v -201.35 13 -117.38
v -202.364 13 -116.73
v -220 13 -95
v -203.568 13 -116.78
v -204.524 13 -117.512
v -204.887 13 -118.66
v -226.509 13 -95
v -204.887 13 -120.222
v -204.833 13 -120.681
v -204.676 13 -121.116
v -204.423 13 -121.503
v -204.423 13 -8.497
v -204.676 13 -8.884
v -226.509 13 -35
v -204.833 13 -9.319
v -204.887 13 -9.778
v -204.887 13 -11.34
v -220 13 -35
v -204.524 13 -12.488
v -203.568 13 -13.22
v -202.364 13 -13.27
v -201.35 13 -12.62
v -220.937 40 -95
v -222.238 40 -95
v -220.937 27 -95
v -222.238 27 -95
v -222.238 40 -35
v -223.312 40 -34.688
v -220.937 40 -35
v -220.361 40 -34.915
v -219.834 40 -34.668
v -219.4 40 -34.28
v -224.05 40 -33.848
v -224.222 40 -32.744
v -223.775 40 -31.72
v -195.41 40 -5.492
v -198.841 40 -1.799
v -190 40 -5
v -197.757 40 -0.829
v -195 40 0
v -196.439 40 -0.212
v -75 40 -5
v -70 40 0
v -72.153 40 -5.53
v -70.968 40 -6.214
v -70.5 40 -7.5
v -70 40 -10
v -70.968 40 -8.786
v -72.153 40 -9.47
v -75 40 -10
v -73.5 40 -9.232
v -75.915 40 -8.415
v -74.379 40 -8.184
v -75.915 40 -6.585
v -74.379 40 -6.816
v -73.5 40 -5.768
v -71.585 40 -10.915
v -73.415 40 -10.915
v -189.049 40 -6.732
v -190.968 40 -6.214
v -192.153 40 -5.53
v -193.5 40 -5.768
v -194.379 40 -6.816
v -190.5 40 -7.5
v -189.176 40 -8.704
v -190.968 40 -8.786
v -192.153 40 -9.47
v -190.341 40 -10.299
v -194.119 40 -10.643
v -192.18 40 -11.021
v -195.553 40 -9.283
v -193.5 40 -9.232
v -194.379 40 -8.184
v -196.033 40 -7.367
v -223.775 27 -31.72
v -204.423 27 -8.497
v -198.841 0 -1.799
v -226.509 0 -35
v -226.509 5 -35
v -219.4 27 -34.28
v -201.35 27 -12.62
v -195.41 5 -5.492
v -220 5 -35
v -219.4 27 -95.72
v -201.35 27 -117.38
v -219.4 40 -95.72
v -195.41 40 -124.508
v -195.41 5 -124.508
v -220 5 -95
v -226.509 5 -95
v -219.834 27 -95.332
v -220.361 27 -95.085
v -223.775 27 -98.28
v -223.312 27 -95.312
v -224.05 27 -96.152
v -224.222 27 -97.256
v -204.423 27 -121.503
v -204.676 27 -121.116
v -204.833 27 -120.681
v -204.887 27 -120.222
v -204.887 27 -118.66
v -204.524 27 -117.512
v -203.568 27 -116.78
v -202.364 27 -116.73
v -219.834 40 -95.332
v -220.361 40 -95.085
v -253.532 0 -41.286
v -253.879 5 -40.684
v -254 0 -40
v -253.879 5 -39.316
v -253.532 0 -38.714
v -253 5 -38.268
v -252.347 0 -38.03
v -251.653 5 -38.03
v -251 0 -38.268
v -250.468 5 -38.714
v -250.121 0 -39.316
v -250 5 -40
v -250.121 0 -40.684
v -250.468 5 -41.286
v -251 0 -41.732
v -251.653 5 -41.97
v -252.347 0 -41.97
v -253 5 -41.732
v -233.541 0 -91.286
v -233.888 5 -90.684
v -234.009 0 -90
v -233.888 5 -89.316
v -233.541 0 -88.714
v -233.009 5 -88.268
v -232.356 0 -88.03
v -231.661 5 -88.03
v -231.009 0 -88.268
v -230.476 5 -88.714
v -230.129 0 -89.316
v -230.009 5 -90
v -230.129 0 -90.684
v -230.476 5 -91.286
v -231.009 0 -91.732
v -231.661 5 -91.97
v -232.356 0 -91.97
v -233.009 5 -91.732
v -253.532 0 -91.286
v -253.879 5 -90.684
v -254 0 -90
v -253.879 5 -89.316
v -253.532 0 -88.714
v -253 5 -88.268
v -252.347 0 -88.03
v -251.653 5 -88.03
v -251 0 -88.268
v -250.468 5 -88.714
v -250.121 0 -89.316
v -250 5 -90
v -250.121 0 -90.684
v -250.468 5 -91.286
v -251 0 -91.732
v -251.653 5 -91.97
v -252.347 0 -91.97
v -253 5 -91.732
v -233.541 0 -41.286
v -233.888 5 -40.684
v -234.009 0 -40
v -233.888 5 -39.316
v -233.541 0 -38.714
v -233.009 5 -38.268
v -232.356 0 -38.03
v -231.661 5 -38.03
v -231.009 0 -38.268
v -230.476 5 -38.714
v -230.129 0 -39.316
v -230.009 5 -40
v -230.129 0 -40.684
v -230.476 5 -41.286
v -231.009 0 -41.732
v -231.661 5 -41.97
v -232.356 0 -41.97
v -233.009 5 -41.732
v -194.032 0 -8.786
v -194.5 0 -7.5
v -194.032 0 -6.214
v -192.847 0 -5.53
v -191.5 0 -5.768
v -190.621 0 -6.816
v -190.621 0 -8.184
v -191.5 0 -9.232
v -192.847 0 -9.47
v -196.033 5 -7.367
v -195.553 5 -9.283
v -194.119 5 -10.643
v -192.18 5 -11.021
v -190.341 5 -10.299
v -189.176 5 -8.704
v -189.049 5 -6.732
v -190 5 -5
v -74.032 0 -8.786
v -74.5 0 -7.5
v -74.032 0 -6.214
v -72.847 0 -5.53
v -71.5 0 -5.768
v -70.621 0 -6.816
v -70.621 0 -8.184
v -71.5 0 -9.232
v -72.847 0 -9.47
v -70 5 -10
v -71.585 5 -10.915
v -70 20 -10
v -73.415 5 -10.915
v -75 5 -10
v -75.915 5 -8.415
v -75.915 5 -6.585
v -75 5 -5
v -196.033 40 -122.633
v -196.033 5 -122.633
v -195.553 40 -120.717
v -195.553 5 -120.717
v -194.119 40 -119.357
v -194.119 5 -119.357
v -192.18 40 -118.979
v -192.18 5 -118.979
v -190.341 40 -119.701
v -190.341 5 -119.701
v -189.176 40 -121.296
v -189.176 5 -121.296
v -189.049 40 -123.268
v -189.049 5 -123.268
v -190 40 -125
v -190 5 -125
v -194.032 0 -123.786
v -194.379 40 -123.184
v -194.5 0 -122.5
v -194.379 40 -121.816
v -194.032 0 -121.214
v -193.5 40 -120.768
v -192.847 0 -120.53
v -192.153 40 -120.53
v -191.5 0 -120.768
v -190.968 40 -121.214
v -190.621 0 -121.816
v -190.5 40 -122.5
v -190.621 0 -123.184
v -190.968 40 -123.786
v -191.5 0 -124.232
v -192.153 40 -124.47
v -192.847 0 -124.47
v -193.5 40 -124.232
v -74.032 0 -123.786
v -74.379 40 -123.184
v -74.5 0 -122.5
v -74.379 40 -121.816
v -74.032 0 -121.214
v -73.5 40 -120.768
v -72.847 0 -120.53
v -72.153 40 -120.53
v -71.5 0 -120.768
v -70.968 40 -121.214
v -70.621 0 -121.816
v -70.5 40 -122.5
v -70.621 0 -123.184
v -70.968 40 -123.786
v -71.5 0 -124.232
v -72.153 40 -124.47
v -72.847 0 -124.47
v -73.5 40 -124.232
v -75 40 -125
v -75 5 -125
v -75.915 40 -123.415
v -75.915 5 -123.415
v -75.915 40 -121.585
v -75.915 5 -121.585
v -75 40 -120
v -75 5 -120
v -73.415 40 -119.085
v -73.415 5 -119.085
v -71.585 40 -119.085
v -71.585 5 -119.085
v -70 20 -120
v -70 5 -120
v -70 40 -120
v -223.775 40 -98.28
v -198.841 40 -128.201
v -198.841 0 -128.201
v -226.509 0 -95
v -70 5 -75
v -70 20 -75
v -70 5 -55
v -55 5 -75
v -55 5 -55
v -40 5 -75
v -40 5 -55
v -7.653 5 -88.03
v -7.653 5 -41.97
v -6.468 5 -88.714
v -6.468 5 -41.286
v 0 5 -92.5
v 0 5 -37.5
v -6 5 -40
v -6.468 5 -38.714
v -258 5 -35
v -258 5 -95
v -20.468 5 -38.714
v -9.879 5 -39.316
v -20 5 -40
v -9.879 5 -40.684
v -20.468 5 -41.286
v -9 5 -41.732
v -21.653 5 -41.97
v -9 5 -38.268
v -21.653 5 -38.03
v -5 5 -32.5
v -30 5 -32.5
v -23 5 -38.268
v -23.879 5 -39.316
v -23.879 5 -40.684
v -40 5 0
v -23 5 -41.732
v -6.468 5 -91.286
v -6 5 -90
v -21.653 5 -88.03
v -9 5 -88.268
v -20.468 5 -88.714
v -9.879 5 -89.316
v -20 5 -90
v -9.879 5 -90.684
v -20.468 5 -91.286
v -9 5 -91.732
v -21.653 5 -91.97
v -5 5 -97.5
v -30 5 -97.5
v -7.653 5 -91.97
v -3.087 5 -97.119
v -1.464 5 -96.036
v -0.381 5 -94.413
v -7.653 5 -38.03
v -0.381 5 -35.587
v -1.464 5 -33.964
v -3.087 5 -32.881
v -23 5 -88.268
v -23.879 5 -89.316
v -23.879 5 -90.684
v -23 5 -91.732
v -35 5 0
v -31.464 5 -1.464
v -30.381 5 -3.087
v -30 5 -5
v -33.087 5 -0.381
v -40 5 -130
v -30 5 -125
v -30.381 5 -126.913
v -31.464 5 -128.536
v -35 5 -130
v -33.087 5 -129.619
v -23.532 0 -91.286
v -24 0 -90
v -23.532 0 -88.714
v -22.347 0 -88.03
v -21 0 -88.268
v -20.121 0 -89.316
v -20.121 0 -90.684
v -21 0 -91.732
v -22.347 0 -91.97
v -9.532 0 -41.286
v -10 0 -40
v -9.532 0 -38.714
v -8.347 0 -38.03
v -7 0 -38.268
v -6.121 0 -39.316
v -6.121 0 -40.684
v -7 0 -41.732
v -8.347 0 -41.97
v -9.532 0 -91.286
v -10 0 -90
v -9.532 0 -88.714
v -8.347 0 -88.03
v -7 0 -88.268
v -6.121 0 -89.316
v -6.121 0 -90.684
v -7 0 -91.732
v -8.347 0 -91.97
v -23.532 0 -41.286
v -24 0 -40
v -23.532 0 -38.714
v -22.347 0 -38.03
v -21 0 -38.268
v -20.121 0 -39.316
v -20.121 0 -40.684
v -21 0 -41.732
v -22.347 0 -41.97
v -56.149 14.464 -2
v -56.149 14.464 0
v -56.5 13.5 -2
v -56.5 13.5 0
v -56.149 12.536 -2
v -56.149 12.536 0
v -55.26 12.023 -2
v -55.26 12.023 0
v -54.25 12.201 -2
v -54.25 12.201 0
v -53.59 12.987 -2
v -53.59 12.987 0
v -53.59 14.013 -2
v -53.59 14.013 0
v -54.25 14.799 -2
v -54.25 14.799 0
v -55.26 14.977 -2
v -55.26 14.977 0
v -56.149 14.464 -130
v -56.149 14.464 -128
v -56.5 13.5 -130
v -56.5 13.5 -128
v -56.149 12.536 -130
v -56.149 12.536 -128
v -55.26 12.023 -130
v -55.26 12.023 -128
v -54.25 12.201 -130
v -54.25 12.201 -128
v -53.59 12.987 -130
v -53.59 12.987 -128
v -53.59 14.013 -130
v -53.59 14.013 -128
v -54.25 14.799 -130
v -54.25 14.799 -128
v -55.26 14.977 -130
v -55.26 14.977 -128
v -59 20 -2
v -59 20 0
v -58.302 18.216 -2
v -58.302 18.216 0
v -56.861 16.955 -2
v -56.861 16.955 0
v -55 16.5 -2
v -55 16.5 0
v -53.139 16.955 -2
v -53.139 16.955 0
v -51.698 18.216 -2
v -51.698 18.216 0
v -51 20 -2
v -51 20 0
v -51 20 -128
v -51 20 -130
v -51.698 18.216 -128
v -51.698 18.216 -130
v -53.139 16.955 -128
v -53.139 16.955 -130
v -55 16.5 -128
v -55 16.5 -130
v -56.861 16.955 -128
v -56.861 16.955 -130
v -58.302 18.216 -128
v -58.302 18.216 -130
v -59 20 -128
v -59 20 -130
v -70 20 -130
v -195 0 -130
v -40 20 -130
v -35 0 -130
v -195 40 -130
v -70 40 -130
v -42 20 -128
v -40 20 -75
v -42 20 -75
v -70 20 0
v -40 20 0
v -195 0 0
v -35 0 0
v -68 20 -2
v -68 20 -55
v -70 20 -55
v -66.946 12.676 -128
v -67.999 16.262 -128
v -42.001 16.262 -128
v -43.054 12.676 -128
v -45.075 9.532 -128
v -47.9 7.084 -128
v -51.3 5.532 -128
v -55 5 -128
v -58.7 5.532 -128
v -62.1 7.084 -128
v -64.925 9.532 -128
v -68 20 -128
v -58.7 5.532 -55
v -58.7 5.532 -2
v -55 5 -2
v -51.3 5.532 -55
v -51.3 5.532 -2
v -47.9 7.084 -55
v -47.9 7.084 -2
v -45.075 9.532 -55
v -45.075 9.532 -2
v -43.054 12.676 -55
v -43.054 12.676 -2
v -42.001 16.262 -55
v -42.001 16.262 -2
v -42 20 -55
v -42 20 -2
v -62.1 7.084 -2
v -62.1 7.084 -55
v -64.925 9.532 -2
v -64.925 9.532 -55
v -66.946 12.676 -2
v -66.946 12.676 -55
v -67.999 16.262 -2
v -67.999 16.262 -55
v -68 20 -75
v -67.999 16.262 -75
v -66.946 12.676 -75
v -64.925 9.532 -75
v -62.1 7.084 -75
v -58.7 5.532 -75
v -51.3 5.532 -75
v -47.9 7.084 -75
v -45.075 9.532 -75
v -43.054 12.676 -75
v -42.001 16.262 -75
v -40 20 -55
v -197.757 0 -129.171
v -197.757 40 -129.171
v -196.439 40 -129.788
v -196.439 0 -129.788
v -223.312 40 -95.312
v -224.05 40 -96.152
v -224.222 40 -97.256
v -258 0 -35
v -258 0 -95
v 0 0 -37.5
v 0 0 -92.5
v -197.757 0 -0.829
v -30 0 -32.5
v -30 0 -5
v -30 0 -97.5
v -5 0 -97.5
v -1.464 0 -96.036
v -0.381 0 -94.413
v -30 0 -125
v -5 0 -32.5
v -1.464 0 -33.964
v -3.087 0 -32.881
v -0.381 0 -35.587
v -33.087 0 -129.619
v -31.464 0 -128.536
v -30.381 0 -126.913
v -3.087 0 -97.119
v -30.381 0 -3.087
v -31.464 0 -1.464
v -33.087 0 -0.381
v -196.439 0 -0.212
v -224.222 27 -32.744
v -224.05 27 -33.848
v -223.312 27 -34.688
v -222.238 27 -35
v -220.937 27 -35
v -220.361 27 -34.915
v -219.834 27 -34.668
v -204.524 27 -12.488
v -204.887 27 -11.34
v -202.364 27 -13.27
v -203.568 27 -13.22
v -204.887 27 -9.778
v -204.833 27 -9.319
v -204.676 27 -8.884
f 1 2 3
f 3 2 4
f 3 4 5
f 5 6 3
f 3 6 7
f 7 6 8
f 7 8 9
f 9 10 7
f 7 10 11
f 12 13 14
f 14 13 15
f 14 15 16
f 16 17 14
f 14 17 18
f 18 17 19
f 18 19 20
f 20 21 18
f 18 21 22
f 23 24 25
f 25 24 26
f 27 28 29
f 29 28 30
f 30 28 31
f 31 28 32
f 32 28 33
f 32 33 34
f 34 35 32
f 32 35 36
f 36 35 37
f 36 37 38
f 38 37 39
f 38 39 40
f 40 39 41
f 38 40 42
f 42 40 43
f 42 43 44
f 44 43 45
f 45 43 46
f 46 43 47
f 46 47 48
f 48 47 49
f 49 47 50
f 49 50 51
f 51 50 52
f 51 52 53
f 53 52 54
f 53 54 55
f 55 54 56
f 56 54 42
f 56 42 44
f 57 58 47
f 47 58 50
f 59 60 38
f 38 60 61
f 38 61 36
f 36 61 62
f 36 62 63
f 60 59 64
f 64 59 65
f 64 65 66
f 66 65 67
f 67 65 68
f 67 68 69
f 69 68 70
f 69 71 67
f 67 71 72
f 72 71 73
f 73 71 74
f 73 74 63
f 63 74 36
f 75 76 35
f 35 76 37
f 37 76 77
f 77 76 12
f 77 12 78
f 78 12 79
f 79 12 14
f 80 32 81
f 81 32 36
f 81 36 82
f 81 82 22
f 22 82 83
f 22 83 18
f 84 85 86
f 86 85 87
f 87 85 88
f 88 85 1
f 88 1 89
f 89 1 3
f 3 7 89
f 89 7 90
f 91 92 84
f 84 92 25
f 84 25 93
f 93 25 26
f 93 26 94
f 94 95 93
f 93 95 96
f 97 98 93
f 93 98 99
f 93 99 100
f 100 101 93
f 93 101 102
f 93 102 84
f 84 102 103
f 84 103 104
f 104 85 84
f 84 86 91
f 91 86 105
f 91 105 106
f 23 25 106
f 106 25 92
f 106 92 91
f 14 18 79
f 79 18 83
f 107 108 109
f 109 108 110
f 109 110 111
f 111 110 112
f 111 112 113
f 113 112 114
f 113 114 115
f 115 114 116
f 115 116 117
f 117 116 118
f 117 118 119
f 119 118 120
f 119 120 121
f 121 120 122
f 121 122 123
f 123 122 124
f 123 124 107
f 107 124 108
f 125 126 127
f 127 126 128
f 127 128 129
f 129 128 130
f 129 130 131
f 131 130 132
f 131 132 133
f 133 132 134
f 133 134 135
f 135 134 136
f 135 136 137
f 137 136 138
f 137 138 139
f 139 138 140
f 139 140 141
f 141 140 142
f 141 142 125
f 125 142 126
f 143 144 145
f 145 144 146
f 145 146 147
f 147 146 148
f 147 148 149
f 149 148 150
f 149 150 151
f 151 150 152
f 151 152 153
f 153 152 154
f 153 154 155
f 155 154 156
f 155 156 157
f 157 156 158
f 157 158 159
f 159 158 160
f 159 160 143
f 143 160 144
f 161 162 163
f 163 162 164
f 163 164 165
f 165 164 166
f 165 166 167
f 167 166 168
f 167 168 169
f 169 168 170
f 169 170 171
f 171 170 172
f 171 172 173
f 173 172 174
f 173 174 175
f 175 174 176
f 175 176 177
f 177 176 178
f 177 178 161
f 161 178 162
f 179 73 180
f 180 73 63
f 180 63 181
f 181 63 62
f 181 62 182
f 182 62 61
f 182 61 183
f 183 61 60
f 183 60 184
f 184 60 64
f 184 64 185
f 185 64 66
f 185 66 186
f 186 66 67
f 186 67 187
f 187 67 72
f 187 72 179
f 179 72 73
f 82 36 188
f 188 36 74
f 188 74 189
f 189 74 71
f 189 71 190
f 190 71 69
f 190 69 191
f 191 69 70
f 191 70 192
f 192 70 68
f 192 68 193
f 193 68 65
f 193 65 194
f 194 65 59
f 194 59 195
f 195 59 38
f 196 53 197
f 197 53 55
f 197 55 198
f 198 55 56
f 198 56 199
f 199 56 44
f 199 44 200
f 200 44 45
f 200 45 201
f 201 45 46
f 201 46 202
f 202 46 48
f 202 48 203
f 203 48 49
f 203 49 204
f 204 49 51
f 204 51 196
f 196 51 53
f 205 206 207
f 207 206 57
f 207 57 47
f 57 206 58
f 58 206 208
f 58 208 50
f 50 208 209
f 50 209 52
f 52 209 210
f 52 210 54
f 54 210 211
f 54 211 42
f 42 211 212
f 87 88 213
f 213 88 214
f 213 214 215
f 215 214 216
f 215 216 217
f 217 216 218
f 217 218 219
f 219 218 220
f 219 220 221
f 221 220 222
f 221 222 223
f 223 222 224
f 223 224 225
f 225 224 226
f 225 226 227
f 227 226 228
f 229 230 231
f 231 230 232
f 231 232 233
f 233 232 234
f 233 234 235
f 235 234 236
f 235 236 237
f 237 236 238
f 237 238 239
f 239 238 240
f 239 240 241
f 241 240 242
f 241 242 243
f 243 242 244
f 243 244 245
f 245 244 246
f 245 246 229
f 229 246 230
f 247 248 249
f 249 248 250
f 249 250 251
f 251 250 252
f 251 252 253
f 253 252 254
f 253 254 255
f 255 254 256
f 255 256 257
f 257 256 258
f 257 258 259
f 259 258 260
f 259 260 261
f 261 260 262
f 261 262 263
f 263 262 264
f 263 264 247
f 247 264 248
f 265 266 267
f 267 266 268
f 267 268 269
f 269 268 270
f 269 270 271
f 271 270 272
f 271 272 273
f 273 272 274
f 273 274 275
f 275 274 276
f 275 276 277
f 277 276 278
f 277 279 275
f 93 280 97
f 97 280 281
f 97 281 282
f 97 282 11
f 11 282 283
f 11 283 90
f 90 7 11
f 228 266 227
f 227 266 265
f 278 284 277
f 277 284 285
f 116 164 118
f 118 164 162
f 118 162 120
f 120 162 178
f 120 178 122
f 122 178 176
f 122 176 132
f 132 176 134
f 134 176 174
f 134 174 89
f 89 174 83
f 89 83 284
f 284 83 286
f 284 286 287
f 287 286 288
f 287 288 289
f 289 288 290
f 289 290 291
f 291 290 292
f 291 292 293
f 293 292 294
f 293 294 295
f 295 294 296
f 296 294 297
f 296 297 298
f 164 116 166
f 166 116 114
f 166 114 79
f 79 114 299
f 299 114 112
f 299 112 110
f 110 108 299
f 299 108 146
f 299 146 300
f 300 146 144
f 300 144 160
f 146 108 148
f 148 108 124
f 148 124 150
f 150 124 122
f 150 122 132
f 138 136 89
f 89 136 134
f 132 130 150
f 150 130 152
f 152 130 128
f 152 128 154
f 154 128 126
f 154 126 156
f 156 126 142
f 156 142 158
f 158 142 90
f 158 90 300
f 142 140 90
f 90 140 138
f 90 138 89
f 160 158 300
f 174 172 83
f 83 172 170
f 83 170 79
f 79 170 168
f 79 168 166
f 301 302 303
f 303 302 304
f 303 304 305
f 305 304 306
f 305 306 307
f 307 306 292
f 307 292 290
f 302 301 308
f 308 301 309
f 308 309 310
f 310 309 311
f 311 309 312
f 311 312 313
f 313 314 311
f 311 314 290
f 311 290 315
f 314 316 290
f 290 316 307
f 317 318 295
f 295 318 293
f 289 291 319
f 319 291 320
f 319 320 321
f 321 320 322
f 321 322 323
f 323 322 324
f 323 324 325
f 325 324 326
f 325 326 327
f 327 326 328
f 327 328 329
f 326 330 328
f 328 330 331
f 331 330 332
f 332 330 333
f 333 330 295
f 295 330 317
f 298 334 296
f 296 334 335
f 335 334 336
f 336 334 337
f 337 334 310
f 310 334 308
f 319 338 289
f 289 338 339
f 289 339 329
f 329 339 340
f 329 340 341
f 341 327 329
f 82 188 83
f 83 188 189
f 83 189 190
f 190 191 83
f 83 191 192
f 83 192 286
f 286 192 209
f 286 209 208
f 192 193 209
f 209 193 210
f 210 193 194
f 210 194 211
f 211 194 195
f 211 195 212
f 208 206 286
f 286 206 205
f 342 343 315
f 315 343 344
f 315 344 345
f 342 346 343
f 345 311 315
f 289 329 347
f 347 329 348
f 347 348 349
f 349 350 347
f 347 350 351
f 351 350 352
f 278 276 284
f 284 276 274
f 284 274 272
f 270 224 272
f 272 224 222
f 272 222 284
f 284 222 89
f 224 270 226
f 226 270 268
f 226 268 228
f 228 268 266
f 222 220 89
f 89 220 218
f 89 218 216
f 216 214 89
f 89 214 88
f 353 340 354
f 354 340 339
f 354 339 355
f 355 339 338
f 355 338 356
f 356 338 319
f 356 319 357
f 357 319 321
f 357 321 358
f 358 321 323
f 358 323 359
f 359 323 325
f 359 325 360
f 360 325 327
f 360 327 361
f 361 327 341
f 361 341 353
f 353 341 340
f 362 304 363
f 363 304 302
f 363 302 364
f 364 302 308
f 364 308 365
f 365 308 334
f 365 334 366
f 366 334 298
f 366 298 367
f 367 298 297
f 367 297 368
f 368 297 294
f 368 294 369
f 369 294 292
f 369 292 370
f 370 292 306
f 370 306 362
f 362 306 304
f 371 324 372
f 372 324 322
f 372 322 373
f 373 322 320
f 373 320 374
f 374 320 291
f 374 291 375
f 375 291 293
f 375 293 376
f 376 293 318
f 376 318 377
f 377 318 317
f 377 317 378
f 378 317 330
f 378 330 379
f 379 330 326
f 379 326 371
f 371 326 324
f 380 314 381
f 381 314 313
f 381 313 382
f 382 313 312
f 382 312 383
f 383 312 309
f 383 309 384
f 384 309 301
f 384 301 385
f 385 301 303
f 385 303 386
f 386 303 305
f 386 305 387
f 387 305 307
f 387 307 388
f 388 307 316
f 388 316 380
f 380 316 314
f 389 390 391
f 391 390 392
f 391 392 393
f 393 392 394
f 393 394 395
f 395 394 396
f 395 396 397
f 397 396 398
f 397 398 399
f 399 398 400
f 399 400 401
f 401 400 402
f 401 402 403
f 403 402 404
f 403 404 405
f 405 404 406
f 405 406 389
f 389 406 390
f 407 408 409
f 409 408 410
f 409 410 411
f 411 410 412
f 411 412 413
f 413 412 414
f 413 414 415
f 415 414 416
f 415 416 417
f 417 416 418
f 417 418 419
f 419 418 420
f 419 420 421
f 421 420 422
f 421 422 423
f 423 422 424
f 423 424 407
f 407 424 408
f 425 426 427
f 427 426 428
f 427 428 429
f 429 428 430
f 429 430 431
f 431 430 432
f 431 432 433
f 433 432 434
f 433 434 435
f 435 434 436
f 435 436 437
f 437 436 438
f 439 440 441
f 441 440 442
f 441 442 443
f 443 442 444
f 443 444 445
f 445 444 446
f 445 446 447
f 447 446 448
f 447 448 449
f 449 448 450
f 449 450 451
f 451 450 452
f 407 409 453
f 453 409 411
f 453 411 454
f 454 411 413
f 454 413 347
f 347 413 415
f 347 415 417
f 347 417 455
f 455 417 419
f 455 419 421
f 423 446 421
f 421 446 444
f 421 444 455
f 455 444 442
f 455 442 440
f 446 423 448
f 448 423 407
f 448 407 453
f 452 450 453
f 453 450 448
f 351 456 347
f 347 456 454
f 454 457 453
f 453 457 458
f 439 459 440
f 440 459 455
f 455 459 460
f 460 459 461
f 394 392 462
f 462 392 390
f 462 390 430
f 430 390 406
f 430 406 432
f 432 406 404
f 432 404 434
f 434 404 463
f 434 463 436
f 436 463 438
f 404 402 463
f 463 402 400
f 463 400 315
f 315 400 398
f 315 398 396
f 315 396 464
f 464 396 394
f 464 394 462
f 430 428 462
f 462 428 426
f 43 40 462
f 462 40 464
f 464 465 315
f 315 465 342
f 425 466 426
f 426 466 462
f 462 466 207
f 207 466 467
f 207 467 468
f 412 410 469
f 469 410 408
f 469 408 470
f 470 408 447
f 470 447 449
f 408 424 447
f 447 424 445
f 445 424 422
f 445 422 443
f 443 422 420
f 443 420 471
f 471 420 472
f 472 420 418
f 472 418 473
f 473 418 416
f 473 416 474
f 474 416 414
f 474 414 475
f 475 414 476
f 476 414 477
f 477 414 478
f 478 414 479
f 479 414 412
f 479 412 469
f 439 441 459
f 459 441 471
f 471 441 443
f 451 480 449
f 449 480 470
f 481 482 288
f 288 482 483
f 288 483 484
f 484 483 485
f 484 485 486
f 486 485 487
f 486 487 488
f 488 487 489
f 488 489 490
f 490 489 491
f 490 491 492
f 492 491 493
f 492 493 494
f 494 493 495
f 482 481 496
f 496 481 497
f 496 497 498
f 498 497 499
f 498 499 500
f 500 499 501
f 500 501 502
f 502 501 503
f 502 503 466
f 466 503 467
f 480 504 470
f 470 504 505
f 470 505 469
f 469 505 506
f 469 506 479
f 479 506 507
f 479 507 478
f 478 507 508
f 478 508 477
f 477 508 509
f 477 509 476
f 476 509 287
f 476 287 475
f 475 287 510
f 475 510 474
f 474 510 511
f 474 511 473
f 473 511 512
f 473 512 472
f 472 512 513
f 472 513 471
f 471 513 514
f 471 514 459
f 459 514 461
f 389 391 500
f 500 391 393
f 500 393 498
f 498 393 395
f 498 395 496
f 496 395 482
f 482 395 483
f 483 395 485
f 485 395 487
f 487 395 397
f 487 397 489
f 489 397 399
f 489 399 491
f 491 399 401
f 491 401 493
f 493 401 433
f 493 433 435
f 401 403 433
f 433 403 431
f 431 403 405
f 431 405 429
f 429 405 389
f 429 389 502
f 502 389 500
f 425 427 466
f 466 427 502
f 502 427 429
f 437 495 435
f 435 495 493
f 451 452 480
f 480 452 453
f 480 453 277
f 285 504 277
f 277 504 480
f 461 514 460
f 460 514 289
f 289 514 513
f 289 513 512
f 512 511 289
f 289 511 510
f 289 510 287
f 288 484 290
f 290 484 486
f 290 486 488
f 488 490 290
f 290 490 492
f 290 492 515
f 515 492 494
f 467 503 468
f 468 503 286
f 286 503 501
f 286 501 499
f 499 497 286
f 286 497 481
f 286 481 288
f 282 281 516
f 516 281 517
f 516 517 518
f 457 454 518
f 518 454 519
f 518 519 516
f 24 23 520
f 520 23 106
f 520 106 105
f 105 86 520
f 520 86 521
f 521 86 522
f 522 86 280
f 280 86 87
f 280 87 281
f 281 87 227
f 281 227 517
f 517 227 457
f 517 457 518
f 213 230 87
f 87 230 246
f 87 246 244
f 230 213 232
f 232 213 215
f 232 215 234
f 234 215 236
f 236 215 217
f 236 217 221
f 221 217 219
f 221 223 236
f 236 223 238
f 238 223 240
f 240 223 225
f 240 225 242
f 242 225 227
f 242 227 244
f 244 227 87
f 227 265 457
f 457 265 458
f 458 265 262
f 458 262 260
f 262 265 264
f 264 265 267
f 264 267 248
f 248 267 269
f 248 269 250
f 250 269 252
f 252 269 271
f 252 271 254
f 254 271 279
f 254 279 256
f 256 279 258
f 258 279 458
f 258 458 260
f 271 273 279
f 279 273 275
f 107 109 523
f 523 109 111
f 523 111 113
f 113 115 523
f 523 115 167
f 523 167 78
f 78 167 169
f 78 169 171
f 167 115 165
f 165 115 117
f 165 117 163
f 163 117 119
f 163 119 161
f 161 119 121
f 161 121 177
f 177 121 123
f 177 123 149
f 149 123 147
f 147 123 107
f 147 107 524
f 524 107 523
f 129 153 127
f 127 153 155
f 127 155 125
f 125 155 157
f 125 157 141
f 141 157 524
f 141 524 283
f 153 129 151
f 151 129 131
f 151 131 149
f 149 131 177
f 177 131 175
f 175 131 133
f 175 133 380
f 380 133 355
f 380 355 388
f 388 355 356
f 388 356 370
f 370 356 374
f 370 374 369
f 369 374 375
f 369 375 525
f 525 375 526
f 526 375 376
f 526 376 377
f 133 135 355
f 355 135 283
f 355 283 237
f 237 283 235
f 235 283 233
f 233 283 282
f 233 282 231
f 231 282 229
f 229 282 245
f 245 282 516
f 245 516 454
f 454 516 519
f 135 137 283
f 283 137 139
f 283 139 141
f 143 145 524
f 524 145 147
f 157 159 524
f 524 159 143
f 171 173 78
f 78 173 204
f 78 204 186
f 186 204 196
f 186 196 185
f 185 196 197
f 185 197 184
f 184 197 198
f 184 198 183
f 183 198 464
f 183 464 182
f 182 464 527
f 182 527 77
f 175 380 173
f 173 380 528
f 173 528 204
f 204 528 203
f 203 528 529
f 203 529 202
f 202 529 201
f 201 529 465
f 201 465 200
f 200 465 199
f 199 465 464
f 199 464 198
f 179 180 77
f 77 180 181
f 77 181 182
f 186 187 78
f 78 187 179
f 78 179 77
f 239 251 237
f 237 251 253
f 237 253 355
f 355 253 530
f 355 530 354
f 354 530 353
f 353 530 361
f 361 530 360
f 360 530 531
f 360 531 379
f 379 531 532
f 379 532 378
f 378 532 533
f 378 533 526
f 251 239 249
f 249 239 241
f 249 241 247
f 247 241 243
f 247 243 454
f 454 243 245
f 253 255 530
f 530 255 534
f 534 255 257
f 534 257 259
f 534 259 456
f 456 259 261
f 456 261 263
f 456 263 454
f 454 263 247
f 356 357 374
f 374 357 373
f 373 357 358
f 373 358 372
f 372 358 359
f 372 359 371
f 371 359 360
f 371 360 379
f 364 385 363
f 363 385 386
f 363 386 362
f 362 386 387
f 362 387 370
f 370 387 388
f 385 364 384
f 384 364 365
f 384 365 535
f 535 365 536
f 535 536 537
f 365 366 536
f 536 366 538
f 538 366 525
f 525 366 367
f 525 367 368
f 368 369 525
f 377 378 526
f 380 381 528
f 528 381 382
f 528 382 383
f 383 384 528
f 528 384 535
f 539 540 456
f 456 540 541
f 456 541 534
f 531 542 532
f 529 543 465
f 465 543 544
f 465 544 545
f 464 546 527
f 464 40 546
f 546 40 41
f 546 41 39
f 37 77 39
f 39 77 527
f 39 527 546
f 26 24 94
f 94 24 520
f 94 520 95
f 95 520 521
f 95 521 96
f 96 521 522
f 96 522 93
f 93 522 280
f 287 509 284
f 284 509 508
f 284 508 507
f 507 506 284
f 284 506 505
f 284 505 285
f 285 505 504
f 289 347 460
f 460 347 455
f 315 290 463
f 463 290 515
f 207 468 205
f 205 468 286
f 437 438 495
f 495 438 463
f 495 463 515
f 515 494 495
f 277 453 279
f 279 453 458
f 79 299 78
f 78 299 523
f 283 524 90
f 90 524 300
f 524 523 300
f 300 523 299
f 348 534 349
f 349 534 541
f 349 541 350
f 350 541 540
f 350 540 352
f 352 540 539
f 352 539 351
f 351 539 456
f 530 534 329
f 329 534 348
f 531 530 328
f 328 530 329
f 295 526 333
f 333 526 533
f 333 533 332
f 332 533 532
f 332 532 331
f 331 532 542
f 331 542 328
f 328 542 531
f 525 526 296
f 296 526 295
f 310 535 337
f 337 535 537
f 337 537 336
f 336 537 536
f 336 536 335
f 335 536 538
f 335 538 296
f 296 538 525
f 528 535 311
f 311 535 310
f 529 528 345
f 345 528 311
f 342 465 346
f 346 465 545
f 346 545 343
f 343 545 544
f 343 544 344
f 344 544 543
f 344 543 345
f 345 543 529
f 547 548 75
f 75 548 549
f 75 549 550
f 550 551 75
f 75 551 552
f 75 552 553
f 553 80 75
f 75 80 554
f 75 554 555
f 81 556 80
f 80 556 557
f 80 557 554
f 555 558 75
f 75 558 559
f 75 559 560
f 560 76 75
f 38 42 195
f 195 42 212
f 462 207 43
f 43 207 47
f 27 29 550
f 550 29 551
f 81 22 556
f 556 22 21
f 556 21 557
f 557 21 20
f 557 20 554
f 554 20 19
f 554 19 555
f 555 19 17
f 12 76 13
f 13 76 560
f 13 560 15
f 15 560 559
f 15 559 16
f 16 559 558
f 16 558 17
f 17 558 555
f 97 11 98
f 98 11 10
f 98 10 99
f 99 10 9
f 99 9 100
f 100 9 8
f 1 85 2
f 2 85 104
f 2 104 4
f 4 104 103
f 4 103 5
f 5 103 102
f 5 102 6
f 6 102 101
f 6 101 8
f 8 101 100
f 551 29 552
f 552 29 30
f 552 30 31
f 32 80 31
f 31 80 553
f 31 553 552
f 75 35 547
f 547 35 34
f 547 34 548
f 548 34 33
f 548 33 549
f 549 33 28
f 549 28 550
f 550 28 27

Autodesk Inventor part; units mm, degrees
sketch "Boceto1" plane through (0, 0, 0) normal (0, 1, 0) x (-1, 0, 0)
  line L0 (197.3419, -130) -> (35, -130)
  line L1 (5, -32.5) -> (30, -32.5)
  line L2 (30, -32.5) -> (30, -97.5)
  line L3 (30, -97.5) -> (5, -97.5)
  line L4 (30, -5) -> (30, -32.5)
  line L5 (30, -97.5) -> (30, -125)
  line L6 (0, -37.5) -> (0, -92.5)
  arc A0 (5, -32.5) -> (0, -37.5) centre (5, -37.5) ccw
  arc A1 (0, -92.5) -> (5, -97.5) centre (5, -92.5) ccw
  line L7 (35, 0) -> (40, 0) construction
  line L8 (40, 0) -> (40, -130) construction
  line L9 (40, -130) -> (70, -130)
  line L10 (70, -130) -> (70, -75)
  line L11 (70, -75) -> (40, -75)
  line L12 (40, -75) -> (40, -130)
  line L13 (40, 0) -> (70, 0)
  line L14 (70, 0) -> (70, -55)
  line L15 (70, -55) -> (40, -55)
  line L16 (40, -55) -> (40, 0)
  arc A2 (30, -125) -> (35, -130) centre (35, -125) ccw
  arc A3 (35, 0) -> (30, -5) centre (35, -5) ccw
  line L17 (70, 0) -> (70, -5) construction
  line L18 (70, -130) -> (70, -125) construction
  line L19 (70, -125) -> (195, -125)
  line L20 (70, -5) -> (195, -5)
  line L21 (195, -5) -> (220, -5) construction
  line L22 (220, -5) -> (220, -125) construction
  line L23 (220, -125) -> (195, -125) construction
  line L24 (0, -65) -> (285, -65) construction
  line L25 (220, -65) -> (220, -95) construction
  line L26 (220, -65) -> (220, -35) construction
  line L27 (220, -35) -> (255, -35) construction
  line L28 (255, -35) -> (255, -95) construction
  line L29 (255, -95) -> (220, -95) construction
  line L30 (195, -5) -> (220, -35)
  line L31 (195, -125) -> (220, -95)
  line L32 (220, -95) -> (255, -95)
  line L33 (220, -35) -> (255, -35)
  line L34 (255, -35) -> (255, -95)
  line L35 (207.5, -110) -> (211.3411, -113.2009) construction
  line L36 (197.3419, -130) -> (226.5085, -95)
  line L37 (197.3419, 0) -> (226.5085, -35)
  line L38 (70, 0) -> (197.3419, 0)
  line L39 (35, 0) -> (40, 0)
  line L40 (255, -95) -> (258, -95)
  line L41 (258, -95) -> (258, -35)
  line L42 (258, -35) -> (255, -35)
  line L43 (255, -35) -> (255, -95)
  point P0 (0, 0)
  point P1 (30, -130)
  dimension "d5" = 5
  dimension "d7" = 30
  dimension "d8" = 55
  dimension "d9" = 55
  dimension "d10" = 5
  dimension "d11" = 5
  dimension "d12" = 125
  dimension "d13" = 25
  dimension "d14" = 30
  dimension "d15" = 30
  dimension "d16" = 35
  dimension "d17" = 5
  dimension "d62" = 3
extrude "Extrusión1" add sketch "Boceto1" along normal blind 40 contours L0 L10 L19 L31 L32 L36 | L33 L30 L20 L14 L38 L37
extrude "Extrusión2" add sketch "Boceto1" along normal blind 5 contours L32 L31 L19 L10 L11 L12 L0 A2 L5 L2 L4 A3 L39 L16 L15 L14 L20 L30 L33 L34 | L34 L42 L41 L40 | L3 A1 L6 A0 L1 L2
extrude "Extrusión3" add sketch "Boceto1" along normal blind 20 contours L0 L12 L11 L10 | L14 L15 L16 L13
fillet "Empalme1" radius 5 2 edges at (-197.3419, 20, 0) (-197.3419, 20, -130)
ref_plane "Plano de trabajo1" through (0, 0, -65) normal (0, 0, 1) x (1, 0, 0)
sketch "Boceto2" plane through (0, 0, -65) normal (0, 0, 1) x (1, 0, 0)
  line L0 (-40, 20) -> (-70, 20) construction
  line L1 (-70, 20) -> (-68, 20) construction
  line L2 (-40, 5) -> (-40, 20) construction
  line L3 (-40, 20) -> (-42, 20) construction
  arc A0 (-68, 20) -> (-42, 20) centre (-55, 18.1333) ccw
  line L4 (-68, 20) -> (-68, 21.6532)
  line L5 (-68, 21.6532) -> (-42, 21.6532)
  line L6 (-42, 21.6532) -> (-42, 20)
  point P0 (0, 0)
  dimension "d26" = 2
  dimension "d27" = 2
extrude "Extrusión4" cut sketch "Boceto2" along normal mid plane 126
sketch "Boceto3" plane through (0, 0, -65) normal (0, 0, 1) x (1, 0, 0)
  line L0 (-68, 20) -> (-42, 20) construction
  line L1 (-55, 20) -> (-59, 20) construction
  line L2 (-55, 20) -> (-51, 20) construction
  line L3 (-55, 20) -> (-55, 16.5) construction
  arc A0 (-59, 20) -> (-51, 20) centre (-55, 20.5357) ccw
  arc A1 (-51, 20) -> (-59, 20) centre (-55, 15.3068) ccw
  point P0 (0, 0)
  dimension "d30" = 4
  dimension "d33" = 3.5
extrude "Extrusión5" cut sketch "Boceto3" along normal through all both and the other way through all
sketch "Boceto4" plane through (0, 0, -65) normal (0, 0, 1) x (1, 0, 0)
  arc A0 (-59, 20) -> (-51, 20) centre (-55, 20.5357) ccw construction
  line L0 (-55, 16.5) -> (-55, 13.5) construction
  circle A1 centre (-55, 13.5) radius 1.5
  point P0 (0, 0)
  dimension "d36" = 3
  dimension "d37" = 3
extrude "Extrusión6" cut sketch "Boceto4" along normal through all both and the other way through all
sketch "Boceto5" plane through (0, 5, 0) normal (0, 1, 0) x (1, 0, 0)
  line L0 (-30, 97.5) -> (-30, 125) construction
  line L1 (-30, 32.5) -> (-30, 97.5) construction
  line L2 (0, 37.5) -> (0, 92.5) construction
  line L3 (0, 65) -> (-30, 65) construction
  line L4 (0, 97.5) -> (-15, 97.5) construction
  line L5 (-5, 97.5) -> (-30, 97.5) construction
  line L6 (-15, 97.5) -> (-15, 32.5) construction
  line L7 (-30, 32.5) -> (-5, 32.5) construction
  line L8 (-15, 65) -> (-15, 40) construction
  line L9 (-15, 40) -> (-20, 40) construction
  line L10 (-20, 40) -> (-22, 40) construction
  circle A0 centre (-22, 40) radius 2
  circle A1 centre (-8, 40) radius 2
  circle A2 centre (-22, 90) radius 2
  circle A3 centre (-8, 90) radius 2
  point P0 (0, 0)
  dimension "d40" = 15
  dimension "d41" = 25
  dimension "d42" = 5
  dimension "d43" = 2
extrude "Extrusión7" cut sketch "Boceto5" against normal blind 10
sketch "Boceto6" plane through (0, 5, 0) normal (0, 1, 0) x (1, 0, 0)
  line L0 (-70, 55) -> (-70, 5) construction
  line L1 (-70, 5) -> (-70, 10) construction
  line L2 (-70, 10) -> (-75, 10) construction
  line L3 (-75, 10) -> (-75, 5) construction
  line L4 (-75, 5) -> (-70, 10) construction
  line L5 (-75, 10) -> (-70, 5) construction
  circle A0 centre (-72.5, 7.5) radius 2
  arc A1 (-70, 10) -> (-75, 5) centre (-72.5, 7.5) ccw
  line L6 (-70, 0) -> (-70, 5) projected
  line L7 (-70, 10) -> (-70, 5)
  line L8 (-70, 5) -> (-75, 5)
  line L9 (0, 37.5) -> (0, 92.5) construction
  line L10 (0, 65) -> (-255, 65) construction
  line L11 (-255, 95) -> (-255, 35) construction
  line L12 (0, 65) -> (-127.5, 65) construction
  line L13 (-127.5, 65) -> (-127.5, 0) construction
  line L14 (-195, 0) -> (-35, 0) construction
  line L15 (-70, 125) -> (-70, 120) construction
  circle A2 centre (-72.5, 122.5) radius 2
  arc A3 (-75, 125) -> (-70, 120) centre (-72.5, 122.5) ccw
  line L16 (-70, 120) -> (-70, 125)
  line L17 (-70, 125) -> (-75, 125)
  line L18 (-195, 5) -> (-220, 35) construction
  line L19 (-195, 125) -> (-70, 125) construction
  line L20 (-195, 5) -> (-195, 125) construction
  line L21 (-70, 65) -> (-132.5, 65) construction
  line L22 (-132.5, 65) -> (-132.5, 130) construction
  line L23 (-35, 130) -> (-195, 130) construction
  circle A4 centre (-192.5, 7.5) radius 2
  arc A5 (-190, 5) -> (-195, 10) centre (-192.5, 7.5) ccw
  line L24 (-195, 10) -> (-195, 5)
  line L25 (-195, 5) -> (-190, 5)
  arc A6 (-195, 120) -> (-190, 125) centre (-192.5, 122.5) ccw
  circle A7 centre (-192.5, 122.5) radius 2
  line L26 (-195, 125) -> (-190, 125)
  line L27 (-195, 120) -> (-195, 125)
  arc A8 (-195, 125) -> (-192.5, 118.9645) centre (-192.5, 122.5) ccw
  line L28 (-190, 125) -> (-195, 125)
  arc A9 (-192.5, 11.0355) -> (-195, 5) centre (-192.5, 7.5) ccw
  point P0 (0, 0)
  point P1 (-195, 120)
  dimension "d47" = 5
  dimension "d48" = 4
  dimension "d49" = 127.5
  dimension "d50" = 62.5
extrude "Extrusión8" add sketch "Boceto6" along normal blind 35
extrude "Extrusión9" cut sketch "Boceto6" against normal blind 35 contours A0 | A2 | A4 | A7
sketch "Boceto7" plane through (0, 5, 0) normal (0, 1, 0) x (1, 0, 0)
  line L0 (-255, 35) -> (-226.5085, 35) construction
  line L1 (-198.8411, 128.2009) -> (-226.5085, 95) construction
  line L2 (-226.5085, 35) -> (-226.5085, 95) construction
  line L3 (-226.5085, 65) -> (-255, 65) construction
  line L4 (-255, 95) -> (-255, 35) construction
  line L5 (-226.5085, 95) -> (-255, 95) construction
  line L6 (-240.7543, 95) -> (-240.7543, 35) construction
  line L7 (-226.5085, 35) -> (-229.5085, 35) construction
  circle A0 centre (-252, 40) radius 2
  circle A1 centre (-252, 90) radius 2
  line L8 (-226.5085, 35) -> (-226.5085, 40) construction
  line L9 (-226.5085, 40) -> (-232.0085, 40) construction
  circle A2 centre (-232.0085, 40) radius 2
  circle A3 centre (-232.0085, 90) radius 2
  point P0 (0, 0)
  dimension "d64" = 5.5
  dimension "d65" = 4
extrude "Extrusión10" cut sketch "Boceto7" against normal blind 35
ref_plane "Plano de trabajo2" through (0, 0, -65) normal (0, 0, 1) x (1, 0, 0)
ref_plane "Plano de trabajo3" through (0, 0, -65) normal (0, 0, 1) x (1, 0, 0)
sketch "Boceto9" plane through (0, 0, -65) normal (0, 0, 1) x (1, 0, 0)
  line L0 (-226.5085, 5) -> (-226.5085, 40) construction
  line L1 (-226.5085, 22.5) -> (-226.5085, 27)
  line L2 (-226.5085, 27) -> (-204.8867, 27)
  line L3 (-204.8867, 27) -> (-204.8867, 13)
  line L4 (-204.8867, 13) -> (-226.5085, 13)
  line L5 (-226.5085, 13) -> (-226.5085, 27)
  point P0 (0, 0)
  dimension "d79" = 4.5
  dimension "d80" = 14
extrude "Extrusión12" cut sketch "Boceto9" along normal through all both and the other way through all
fillet "Empalme2" radius 2 8 edges at (-204.8867, 20, -16.864) (-204.8867, 20, -9.0538) (-204.8867, 20, -120.9462) (-204.8867, 20, -113.136) (-220, 33.5, -35) (-226.5085, 33.5, -35) (-226.5085, 33.5, -95) (-220, 33.5, -95)
